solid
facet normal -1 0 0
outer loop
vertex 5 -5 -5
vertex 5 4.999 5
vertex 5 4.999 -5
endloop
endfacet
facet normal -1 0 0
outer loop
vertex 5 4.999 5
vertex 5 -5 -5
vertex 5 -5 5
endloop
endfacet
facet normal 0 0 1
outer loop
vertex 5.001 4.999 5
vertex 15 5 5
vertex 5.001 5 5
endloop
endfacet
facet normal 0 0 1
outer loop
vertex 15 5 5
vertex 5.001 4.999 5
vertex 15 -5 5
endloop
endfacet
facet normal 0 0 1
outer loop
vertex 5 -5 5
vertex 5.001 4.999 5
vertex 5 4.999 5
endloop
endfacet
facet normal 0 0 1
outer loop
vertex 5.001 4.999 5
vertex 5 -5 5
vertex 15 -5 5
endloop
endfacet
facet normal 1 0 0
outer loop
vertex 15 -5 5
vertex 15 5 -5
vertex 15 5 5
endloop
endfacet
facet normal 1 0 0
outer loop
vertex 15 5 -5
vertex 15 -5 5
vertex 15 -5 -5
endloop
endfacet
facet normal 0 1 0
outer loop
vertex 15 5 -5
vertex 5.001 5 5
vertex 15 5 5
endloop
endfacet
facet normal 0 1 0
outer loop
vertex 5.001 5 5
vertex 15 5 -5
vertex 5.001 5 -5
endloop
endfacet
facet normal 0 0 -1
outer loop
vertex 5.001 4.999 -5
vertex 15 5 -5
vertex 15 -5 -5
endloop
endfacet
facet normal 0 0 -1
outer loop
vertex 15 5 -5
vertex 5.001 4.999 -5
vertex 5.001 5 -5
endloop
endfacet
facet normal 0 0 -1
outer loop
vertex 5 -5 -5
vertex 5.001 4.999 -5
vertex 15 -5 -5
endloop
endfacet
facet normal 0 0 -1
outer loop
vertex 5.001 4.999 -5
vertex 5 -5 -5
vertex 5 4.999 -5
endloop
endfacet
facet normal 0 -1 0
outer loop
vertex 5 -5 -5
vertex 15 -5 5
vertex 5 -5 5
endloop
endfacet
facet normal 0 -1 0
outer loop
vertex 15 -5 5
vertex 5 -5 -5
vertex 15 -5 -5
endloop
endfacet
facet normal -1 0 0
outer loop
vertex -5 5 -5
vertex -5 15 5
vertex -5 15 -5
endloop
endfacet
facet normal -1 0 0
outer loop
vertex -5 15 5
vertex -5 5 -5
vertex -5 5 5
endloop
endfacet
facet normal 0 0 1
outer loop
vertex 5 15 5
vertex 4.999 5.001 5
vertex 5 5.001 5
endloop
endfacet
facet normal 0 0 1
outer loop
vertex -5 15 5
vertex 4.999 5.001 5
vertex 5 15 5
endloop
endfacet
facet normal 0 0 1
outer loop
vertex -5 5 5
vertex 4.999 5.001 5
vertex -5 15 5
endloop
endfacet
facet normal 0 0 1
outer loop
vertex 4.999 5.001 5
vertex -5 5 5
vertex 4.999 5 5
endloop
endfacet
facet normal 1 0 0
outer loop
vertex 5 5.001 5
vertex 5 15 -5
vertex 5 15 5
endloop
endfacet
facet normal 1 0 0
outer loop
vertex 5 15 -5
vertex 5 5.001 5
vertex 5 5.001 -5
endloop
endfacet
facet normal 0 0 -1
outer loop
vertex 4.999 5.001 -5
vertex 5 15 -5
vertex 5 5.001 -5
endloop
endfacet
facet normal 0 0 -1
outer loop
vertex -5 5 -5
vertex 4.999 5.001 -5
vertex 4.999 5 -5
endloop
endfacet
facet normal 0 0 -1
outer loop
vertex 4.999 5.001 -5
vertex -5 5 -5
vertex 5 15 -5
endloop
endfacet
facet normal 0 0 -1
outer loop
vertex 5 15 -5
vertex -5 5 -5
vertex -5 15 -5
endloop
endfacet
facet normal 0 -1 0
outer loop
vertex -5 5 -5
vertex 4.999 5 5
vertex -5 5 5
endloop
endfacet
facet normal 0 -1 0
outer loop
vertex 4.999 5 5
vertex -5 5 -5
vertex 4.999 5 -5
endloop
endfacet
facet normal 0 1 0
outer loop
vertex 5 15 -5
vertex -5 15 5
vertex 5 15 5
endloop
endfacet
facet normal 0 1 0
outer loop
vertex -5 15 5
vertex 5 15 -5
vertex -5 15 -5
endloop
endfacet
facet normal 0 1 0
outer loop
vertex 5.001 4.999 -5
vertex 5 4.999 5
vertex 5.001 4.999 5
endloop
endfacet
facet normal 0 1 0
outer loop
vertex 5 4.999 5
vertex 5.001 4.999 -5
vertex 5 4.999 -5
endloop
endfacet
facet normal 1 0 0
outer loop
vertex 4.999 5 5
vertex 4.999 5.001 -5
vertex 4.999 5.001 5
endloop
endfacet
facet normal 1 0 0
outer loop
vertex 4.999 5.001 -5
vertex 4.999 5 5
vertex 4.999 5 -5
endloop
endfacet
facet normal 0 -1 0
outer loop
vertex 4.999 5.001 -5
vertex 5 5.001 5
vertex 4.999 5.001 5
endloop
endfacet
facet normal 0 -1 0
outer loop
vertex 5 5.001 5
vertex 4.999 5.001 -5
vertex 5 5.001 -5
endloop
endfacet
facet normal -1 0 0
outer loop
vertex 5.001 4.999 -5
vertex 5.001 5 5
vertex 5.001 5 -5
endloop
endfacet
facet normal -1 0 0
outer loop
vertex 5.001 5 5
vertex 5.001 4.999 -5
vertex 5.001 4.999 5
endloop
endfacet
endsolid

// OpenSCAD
//-------------------------------------------------------------------------------------------
// CubeBicolorRed
//-------------------------------------------------------------------------------------------
$fn=10;

//rotate(90,[-1, 0, 0]) translate([0, 0, 0]) 
difference(){
union() {
  //color("White") translate([0, 0, 0]) cube([10,10,10], center = true);
  color("red") translate([10, 0, 0]) cube([10,10,10], center = true);
  color("red") translate([0, 10, 0]) cube([10,10,10], center = true);
  //color("White") translate([10, 10, 0]) cube([10,10,10], center = true);
}
translate([5, 5, 0]) cylinder(r=0.001,h=20, center = true);
}
